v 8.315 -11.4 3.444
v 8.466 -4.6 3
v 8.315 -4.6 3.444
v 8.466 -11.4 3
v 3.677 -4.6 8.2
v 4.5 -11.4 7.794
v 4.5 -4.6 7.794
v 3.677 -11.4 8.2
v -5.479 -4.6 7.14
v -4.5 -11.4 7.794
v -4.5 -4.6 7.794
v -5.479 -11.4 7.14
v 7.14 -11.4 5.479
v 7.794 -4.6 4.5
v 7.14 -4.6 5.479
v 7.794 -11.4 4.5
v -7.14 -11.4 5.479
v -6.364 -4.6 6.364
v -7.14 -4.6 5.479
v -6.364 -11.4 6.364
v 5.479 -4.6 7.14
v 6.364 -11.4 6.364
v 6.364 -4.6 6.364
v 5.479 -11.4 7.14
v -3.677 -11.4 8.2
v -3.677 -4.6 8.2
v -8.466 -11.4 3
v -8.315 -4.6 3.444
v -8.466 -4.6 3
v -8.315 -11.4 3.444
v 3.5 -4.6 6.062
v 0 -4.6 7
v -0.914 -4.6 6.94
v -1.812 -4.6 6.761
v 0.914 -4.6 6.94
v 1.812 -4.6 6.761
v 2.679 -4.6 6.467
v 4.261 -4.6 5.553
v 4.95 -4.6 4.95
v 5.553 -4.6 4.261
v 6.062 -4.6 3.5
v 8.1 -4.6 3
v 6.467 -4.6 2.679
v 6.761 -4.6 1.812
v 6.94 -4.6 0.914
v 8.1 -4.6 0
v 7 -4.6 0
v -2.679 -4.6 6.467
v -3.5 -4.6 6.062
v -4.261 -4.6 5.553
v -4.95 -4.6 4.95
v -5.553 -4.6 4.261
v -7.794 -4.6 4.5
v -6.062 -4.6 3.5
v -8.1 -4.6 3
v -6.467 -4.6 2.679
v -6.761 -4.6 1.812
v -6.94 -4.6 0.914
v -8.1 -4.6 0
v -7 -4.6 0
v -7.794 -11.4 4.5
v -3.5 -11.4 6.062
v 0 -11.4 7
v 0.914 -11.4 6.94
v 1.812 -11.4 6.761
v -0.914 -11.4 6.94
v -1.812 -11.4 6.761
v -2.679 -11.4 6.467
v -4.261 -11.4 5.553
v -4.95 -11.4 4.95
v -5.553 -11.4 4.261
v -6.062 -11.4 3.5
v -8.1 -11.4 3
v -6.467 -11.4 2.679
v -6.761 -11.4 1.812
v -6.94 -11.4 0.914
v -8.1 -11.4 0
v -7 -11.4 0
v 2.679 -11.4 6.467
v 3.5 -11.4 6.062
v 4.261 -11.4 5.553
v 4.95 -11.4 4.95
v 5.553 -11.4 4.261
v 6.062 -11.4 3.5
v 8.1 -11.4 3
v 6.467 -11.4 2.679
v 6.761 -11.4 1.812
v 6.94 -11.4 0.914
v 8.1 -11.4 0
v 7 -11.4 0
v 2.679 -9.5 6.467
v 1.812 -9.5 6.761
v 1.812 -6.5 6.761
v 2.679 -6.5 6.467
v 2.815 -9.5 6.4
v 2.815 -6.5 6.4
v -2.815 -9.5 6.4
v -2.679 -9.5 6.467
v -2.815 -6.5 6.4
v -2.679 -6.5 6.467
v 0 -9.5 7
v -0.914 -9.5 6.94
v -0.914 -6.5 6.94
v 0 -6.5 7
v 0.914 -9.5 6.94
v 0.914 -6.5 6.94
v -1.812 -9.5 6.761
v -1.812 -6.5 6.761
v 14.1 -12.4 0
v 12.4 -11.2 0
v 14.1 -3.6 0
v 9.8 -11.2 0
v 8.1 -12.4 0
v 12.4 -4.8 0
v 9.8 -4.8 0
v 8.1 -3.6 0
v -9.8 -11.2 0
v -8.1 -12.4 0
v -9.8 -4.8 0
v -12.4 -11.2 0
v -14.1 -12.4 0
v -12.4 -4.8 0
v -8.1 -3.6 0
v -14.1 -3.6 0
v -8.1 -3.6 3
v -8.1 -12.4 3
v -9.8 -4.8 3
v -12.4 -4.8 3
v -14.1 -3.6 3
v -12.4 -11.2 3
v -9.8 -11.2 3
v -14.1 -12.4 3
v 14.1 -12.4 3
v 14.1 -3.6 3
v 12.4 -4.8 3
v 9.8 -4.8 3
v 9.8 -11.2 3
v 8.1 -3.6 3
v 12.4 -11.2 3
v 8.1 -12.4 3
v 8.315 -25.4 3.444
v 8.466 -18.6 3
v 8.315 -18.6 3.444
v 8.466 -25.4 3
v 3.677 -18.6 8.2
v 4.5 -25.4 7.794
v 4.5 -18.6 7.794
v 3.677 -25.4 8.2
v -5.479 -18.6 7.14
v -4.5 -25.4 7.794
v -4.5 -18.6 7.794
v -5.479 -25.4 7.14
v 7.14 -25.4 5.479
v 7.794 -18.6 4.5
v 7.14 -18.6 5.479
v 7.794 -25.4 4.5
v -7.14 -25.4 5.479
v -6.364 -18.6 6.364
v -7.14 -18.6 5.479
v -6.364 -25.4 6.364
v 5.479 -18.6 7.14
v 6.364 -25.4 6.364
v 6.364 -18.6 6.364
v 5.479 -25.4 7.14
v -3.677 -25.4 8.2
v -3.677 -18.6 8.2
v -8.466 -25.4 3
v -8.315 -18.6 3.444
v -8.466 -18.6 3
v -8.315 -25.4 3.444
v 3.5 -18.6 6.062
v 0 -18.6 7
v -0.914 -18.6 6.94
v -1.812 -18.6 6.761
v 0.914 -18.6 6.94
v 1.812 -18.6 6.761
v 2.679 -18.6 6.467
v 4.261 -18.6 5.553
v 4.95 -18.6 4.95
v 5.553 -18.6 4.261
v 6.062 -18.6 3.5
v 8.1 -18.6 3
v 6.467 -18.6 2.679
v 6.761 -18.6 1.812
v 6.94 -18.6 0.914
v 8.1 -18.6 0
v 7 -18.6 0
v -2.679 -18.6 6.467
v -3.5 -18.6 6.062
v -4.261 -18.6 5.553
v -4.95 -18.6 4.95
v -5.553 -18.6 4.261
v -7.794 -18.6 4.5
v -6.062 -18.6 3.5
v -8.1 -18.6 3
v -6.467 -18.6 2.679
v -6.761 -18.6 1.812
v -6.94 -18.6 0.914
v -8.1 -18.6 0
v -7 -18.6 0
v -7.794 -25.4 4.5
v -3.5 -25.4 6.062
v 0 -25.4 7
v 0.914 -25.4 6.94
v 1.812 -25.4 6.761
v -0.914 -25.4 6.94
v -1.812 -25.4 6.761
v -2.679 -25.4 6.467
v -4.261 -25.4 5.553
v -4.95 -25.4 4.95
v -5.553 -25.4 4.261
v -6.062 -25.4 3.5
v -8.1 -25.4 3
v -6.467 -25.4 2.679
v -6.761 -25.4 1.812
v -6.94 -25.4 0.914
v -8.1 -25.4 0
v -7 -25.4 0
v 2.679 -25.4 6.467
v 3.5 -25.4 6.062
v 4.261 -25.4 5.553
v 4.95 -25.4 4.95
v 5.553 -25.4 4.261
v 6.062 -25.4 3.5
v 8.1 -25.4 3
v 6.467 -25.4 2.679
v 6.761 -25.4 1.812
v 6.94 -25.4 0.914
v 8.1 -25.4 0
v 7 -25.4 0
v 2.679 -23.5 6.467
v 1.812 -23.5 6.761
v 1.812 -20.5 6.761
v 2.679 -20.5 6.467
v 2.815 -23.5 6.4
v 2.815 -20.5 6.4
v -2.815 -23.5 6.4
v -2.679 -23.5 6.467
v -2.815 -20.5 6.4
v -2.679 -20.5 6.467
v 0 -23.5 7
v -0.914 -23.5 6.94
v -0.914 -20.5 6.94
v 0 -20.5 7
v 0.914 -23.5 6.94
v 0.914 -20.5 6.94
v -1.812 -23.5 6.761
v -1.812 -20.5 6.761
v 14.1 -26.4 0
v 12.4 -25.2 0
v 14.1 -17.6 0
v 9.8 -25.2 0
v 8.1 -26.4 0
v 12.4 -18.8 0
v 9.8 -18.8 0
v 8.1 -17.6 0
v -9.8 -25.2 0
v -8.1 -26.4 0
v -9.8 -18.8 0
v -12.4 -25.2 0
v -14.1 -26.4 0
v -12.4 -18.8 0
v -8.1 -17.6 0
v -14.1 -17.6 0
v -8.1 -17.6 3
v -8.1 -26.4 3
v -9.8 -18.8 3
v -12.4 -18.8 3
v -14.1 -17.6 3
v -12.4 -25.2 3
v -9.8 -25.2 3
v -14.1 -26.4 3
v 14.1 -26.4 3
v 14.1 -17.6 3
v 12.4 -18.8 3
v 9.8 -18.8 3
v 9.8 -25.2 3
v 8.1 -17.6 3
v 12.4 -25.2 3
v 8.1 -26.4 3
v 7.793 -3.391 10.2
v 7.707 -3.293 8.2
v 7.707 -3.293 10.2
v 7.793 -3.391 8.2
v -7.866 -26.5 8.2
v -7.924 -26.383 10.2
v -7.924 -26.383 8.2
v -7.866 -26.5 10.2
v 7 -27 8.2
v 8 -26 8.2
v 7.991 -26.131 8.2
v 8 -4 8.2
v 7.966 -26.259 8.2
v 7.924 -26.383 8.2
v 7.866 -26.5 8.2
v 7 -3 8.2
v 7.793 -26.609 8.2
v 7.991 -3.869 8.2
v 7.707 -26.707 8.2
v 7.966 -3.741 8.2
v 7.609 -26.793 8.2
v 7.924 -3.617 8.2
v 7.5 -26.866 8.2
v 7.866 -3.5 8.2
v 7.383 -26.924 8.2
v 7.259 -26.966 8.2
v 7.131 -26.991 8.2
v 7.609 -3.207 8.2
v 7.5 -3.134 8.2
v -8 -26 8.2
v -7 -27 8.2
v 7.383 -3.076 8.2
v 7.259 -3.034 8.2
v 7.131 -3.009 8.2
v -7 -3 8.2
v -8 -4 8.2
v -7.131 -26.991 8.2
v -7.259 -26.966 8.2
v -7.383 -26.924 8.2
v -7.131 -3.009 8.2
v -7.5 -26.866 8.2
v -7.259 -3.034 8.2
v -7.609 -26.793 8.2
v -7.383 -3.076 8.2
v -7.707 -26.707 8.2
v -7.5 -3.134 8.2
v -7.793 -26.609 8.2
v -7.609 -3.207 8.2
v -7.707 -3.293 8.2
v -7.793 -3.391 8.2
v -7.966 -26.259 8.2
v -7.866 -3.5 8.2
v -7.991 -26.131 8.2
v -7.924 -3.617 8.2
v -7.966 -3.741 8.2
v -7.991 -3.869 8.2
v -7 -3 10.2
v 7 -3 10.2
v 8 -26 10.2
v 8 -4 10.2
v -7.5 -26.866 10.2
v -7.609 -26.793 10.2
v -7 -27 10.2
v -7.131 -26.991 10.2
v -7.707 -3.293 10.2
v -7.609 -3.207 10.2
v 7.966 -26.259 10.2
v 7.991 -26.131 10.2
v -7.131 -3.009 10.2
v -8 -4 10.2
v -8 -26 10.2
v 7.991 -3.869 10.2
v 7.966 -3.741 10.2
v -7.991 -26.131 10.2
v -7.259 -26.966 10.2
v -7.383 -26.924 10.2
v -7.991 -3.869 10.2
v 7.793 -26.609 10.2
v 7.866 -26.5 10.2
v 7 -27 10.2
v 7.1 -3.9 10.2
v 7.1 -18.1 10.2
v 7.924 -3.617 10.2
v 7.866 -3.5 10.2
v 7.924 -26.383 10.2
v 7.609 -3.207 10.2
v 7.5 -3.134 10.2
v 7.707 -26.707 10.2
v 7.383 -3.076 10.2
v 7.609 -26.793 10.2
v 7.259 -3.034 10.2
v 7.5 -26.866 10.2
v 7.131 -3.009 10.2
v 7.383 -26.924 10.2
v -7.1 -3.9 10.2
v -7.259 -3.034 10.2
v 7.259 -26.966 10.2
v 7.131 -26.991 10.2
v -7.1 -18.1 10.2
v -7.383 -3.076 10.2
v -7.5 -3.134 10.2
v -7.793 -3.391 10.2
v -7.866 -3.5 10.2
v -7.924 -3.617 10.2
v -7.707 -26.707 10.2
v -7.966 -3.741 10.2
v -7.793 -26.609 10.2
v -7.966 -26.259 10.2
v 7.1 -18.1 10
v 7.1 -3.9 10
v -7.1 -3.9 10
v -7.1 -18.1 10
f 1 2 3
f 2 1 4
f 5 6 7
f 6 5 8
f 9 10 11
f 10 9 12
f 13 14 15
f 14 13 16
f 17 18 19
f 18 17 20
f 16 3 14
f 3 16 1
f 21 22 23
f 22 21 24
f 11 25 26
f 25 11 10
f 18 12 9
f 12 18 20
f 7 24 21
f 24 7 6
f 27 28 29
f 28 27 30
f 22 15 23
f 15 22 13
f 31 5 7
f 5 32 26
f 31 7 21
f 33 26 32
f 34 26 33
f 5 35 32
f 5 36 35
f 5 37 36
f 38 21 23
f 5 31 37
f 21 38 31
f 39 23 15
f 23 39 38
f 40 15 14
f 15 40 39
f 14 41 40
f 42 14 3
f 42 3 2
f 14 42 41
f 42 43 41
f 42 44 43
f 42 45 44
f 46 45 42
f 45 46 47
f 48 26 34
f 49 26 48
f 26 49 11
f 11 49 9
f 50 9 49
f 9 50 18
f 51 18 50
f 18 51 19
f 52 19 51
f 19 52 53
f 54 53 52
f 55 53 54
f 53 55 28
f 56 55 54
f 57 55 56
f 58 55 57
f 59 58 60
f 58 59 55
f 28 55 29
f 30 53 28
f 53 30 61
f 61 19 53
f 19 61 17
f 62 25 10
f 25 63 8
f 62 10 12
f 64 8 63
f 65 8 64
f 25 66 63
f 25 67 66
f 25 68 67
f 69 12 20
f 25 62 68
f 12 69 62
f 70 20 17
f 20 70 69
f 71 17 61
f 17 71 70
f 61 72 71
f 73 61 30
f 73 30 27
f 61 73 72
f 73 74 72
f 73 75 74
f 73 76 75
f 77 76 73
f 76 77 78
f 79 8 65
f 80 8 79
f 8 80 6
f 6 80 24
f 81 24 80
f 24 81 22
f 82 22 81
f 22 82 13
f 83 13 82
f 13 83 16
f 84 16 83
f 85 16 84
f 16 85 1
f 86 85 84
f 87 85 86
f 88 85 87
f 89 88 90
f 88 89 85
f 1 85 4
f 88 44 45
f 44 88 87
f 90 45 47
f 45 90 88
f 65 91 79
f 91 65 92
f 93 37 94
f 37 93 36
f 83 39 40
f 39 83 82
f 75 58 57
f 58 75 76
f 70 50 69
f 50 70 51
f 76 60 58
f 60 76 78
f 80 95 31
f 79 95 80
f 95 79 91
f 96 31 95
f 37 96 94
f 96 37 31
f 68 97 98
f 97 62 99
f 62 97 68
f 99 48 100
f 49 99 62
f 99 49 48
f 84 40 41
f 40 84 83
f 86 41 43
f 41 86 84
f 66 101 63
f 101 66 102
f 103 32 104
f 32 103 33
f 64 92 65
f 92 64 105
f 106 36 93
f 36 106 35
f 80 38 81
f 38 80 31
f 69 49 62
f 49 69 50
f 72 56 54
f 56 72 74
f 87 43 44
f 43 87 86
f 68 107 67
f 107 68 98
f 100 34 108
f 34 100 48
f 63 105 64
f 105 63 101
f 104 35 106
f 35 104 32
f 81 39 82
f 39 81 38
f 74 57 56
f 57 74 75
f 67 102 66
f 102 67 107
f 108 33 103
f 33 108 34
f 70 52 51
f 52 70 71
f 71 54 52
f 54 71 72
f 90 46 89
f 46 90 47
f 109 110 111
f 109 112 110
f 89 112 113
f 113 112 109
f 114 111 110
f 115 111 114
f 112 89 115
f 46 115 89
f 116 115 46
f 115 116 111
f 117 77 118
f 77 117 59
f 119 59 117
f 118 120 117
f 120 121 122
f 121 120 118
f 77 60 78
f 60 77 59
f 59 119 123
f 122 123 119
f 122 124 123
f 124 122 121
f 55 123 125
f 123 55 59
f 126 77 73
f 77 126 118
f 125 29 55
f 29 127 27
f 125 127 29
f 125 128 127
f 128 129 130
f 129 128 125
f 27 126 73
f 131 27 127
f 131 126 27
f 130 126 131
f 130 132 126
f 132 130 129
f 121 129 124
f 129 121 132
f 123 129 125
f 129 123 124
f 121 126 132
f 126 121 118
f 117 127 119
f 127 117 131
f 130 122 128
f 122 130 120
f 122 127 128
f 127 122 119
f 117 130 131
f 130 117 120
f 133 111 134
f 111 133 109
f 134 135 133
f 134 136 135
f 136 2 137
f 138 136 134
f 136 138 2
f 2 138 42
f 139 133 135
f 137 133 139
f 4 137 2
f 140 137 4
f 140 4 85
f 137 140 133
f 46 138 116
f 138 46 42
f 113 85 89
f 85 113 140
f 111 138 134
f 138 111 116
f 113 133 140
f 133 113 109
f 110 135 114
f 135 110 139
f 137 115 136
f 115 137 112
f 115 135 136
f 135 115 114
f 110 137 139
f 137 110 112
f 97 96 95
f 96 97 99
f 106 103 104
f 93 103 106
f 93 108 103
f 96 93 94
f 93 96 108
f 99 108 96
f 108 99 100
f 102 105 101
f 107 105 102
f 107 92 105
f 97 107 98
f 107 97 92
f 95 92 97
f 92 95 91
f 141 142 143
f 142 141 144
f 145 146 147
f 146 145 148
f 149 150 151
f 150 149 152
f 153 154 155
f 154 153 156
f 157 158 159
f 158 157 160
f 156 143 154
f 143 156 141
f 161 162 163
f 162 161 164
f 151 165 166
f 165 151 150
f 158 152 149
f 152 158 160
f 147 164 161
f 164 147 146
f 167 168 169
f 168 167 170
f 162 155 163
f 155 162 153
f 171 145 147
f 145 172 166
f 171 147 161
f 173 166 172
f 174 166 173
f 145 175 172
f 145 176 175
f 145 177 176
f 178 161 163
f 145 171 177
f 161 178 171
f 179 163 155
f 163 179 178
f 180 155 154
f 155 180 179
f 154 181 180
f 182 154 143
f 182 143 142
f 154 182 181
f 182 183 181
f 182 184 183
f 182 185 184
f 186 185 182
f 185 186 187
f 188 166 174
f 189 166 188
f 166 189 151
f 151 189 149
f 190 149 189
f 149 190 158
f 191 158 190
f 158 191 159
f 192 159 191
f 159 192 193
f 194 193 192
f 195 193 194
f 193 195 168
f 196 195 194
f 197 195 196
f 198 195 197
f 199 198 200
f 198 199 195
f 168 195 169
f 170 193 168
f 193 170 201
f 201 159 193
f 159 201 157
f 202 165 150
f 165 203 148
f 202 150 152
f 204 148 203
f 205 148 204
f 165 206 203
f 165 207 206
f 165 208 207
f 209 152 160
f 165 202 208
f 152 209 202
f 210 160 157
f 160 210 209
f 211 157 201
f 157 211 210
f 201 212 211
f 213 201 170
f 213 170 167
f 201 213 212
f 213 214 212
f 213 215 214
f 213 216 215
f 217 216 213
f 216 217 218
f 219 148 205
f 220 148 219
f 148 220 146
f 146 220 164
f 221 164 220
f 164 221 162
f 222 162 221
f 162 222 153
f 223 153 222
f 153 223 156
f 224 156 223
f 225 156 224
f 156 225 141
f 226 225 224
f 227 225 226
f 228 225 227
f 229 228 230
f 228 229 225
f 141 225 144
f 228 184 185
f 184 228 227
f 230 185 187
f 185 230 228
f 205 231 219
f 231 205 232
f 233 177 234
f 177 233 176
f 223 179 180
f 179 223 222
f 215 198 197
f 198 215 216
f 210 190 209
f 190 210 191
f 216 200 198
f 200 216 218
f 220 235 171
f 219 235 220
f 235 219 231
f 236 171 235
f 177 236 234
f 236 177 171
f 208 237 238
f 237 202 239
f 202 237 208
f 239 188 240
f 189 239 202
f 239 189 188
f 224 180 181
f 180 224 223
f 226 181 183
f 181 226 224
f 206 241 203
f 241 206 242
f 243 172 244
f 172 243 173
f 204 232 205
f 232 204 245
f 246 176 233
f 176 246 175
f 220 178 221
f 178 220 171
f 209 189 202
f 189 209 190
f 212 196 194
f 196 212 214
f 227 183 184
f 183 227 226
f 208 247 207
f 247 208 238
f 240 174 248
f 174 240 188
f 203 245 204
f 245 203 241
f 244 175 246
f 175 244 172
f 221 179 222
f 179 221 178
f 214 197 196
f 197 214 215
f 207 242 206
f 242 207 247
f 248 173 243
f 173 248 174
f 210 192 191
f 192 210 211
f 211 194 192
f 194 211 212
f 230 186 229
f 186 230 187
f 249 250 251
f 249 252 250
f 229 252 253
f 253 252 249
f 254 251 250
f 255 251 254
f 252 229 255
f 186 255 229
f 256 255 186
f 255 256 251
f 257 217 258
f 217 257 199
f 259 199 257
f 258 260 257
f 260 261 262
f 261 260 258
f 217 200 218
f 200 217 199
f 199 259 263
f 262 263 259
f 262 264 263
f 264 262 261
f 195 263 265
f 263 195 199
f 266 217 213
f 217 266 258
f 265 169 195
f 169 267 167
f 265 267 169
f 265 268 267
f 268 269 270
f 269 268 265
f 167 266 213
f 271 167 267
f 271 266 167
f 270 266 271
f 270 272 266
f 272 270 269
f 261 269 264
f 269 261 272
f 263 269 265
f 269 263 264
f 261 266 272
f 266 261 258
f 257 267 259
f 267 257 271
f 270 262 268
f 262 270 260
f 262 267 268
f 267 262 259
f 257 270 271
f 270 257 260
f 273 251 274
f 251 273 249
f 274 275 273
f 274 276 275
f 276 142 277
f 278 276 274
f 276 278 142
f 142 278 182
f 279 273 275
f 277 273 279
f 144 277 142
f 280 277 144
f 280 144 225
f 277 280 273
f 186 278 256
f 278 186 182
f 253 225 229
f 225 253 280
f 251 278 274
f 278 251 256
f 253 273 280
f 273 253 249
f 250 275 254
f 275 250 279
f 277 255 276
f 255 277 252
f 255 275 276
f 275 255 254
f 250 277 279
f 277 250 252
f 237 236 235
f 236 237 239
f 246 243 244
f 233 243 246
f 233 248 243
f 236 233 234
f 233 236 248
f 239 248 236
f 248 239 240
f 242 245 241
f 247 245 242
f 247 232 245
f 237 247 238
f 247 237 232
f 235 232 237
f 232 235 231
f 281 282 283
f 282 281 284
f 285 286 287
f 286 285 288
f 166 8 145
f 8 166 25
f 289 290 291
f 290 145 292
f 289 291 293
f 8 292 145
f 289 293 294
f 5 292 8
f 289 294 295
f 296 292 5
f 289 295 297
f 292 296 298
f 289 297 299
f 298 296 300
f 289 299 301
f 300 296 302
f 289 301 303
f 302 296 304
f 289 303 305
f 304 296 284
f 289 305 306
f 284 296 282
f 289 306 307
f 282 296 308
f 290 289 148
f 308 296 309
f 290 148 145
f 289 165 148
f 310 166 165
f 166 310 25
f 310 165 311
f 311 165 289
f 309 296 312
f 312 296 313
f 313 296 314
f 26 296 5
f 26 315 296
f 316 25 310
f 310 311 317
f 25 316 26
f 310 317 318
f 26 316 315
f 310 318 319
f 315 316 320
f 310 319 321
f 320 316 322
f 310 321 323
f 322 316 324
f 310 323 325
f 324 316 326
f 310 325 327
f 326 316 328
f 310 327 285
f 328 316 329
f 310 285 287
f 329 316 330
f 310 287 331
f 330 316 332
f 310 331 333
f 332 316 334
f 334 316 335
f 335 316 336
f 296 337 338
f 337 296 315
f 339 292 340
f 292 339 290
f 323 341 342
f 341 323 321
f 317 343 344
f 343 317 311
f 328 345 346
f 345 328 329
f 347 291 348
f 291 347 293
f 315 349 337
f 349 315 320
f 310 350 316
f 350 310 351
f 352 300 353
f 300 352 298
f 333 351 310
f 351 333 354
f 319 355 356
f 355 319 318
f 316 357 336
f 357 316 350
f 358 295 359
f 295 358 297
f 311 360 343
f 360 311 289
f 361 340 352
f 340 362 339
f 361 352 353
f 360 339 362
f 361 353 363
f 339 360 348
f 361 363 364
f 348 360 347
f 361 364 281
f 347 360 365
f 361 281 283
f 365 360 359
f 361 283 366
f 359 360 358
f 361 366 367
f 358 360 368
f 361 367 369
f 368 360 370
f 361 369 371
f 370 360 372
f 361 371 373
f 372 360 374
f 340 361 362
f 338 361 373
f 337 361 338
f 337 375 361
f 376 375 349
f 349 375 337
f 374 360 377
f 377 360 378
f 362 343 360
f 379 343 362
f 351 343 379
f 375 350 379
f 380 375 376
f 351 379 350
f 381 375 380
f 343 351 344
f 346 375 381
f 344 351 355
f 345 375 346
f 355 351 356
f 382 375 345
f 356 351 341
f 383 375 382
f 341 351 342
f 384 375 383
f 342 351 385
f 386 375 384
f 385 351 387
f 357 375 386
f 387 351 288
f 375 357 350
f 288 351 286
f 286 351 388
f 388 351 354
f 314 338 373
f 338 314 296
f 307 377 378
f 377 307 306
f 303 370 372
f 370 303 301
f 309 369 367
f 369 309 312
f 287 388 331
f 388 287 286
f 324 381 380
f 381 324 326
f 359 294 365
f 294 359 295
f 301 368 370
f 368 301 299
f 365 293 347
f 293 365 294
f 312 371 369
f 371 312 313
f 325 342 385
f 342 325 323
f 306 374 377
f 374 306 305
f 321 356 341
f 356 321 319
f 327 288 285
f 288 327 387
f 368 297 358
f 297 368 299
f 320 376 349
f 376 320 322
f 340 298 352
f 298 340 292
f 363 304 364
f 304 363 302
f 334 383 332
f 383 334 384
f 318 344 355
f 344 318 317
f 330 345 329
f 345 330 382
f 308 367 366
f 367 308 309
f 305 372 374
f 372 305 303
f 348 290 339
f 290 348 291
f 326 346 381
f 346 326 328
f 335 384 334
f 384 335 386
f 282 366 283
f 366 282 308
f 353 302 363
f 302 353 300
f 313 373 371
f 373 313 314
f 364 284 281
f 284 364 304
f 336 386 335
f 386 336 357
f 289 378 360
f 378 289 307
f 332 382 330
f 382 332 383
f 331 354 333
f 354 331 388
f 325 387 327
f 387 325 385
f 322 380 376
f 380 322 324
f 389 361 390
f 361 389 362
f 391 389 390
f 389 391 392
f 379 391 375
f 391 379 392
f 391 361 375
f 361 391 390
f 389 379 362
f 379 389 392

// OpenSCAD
// ReachSense six-finger wrap v2. Units: mm. Experimental, physically unverified.
// R: +X lateral, +Y distal (towards fingertip), +Z dorsal.
// A REMOVABLE seating gauge defines Y=0. The wearable deck ends at Y=-3.
// Remove the gauge before testing; no permanent wall blocks the fingertip.
// This defines nominal longitudinal registration, NOT an anatomical 3D point.
$fn = 48;
part = "holder"; // "holder", "gauge" or "strap"
marker_id = 33;
finger_diameter_mm = 14;
marker_edge_mm = 10;
quiet_zone_mm = 2;
frame_mm = 1;
wall_mm = 2;
stop_wall_mm = 1.2;
strap_width_mm = 6;
strap_length_mm = 90;
gauge_side_clearance_mm = 0.3;
r = finger_diameter_mm/2;
tile = marker_edge_mm + 2*quiet_zone_mm;
deck_width = tile + 2*frame_mm;
length = tile + 2*frame_mm + 8;
deck_front_y = -3;
deck_back_y = deck_front_y-length;
deck_bottom = r + wall_mm - 0.8;
deck_top = deck_bottom + 2;
pocket_depth = 0.2;
marker_y = deck_front_y-(frame_mm+quiet_zone_mm+marker_edge_mm/2);
support_y = [deck_front_y-5,deck_back_y+5];
nail_seat_width = min(8,finger_diameter_mm/2);
nail_seat_z = r-0.6;
assert(finger_diameter_mm >= 12 && finger_diameter_mm <= 26,"Choose a 12–26 mm candidate opening");
assert(marker_edge_mm >= 8 && marker_edge_mm <= 16,"Choose an 8–16 mm black edge");
assert(quiet_zone_mm >= 2,"Keep the full white quiet zone");
assert(marker_id >= 0 && marker_id < 100,"DICT_4X4_100 ID required");
module support(y) {
    translate([0,y,0]) intersection() {
        difference() {
            rotate([90,0,0]) cylinder(r=r+wall_mm,h=6.8,center=true);
            rotate([90,0,0]) cylinder(r=r,h=8.8,center=true);
        }
        translate([-r-wall_mm-1,-4.4,0]) cube([2*(r+wall_mm+1),8.8,r+wall_mm+1]);
    }
    // Flat dorsal bearing at each strap region closes the gap below the deck.
    // Contact with a real nail/dorsal surface and rotational retention are unverified.
    translate([-nail_seat_width/2,y-1.5,nail_seat_z])
        cube([nail_seat_width,3,deck_bottom-nail_seat_z+0.2]);
    for(sign=[-1,1]) translate([sign*(r+wall_mm+2.1),y,1.5]) difference() {
        cube([6,8.8,3],center=true);
        cube([2.6,6.4,5],center=true);
    }
}
module deck() {
    // Rounded corners retain a straight central gauge abutment at Y=-3.
    hull() for(x=[-deck_width/2+1,deck_width/2-1])
        for(y=[deck_back_y+1,deck_front_y-1])
            translate([x,y,deck_bottom]) cylinder(r=1,h=2);
}
module holder() {
    difference() {
        union() { for(y=support_y) support(y); deck(); }
        translate([-tile/2-0.1,marker_y-tile/2-0.1,deck_top-pocket_depth])
            cube([tile+0.2,tile+0.2,pocket_depth+1]);
    }
}
module gauge() {
    // Hand-held drop-on gauge, NOT a validated snap fit. Hold its proximal
    // abutment against the deck's front face at Y=-3 while gently seating the finger.
    // Feet sit on the bare side frame; the ArUco pocket remains clear.
    union() {
        translate([-deck_width/2-2.3,deck_front_y,deck_top])
            cube([deck_width+4.6,-deck_front_y+stop_wall_mm,1.2]);
        // Deck contact Y=-3; fingertip contact Y=0. Remove upwards after tightening.
        translate([-deck_width/2+1,deck_front_y,deck_bottom])
            cube([deck_width-2,-deck_front_y,deck_top-deck_bottom+0.5]);
        translate([-deck_width/2,0,-r/2])
            cube([deck_width,stop_wall_mm,deck_top+1.2+r/2]);
        for(sign=[-1,1]) {
            x=sign>0 ? deck_width/2+gauge_side_clearance_mm : -deck_width/2-gauge_side_clearance_mm-2;
            translate([x,-10,deck_bottom]) cube([2,10,deck_top-deck_bottom+1.2]);
            foot_x=sign>0 ? deck_width/2-0.8 : -deck_width/2-2.3;
            translate([foot_x,-10,deck_top]) cube([3.1,10,1.2]);
        }
    }
}
module strap() {
    // TPU-only ladder strip. Ends require a return loop/fastener or hook-and-loop.
    union() {
        translate([-strap_length_mm/2,-strap_width_mm/2,0]) cube([strap_length_mm,strap_width_mm,0.8]);
        for(x=[-strap_length_mm/2+3:4:strap_length_mm/2-3])
            translate([x-0.7,-strap_width_mm/2,0.8]) cube([1.4,strap_width_mm,0.5]);
    }
}
if(part=="strap") strap(); else if(part=="gauge") gauge(); else holder();
echo(reference_plane_y_mm=0,deck_front_y_mm=deck_front_y);
echo(marker_center_R_mm=[0,marker_y,deck_top-pocket_depth+0.15]);
echo(marker_center_to_reference_plane_mm=-marker_y);
